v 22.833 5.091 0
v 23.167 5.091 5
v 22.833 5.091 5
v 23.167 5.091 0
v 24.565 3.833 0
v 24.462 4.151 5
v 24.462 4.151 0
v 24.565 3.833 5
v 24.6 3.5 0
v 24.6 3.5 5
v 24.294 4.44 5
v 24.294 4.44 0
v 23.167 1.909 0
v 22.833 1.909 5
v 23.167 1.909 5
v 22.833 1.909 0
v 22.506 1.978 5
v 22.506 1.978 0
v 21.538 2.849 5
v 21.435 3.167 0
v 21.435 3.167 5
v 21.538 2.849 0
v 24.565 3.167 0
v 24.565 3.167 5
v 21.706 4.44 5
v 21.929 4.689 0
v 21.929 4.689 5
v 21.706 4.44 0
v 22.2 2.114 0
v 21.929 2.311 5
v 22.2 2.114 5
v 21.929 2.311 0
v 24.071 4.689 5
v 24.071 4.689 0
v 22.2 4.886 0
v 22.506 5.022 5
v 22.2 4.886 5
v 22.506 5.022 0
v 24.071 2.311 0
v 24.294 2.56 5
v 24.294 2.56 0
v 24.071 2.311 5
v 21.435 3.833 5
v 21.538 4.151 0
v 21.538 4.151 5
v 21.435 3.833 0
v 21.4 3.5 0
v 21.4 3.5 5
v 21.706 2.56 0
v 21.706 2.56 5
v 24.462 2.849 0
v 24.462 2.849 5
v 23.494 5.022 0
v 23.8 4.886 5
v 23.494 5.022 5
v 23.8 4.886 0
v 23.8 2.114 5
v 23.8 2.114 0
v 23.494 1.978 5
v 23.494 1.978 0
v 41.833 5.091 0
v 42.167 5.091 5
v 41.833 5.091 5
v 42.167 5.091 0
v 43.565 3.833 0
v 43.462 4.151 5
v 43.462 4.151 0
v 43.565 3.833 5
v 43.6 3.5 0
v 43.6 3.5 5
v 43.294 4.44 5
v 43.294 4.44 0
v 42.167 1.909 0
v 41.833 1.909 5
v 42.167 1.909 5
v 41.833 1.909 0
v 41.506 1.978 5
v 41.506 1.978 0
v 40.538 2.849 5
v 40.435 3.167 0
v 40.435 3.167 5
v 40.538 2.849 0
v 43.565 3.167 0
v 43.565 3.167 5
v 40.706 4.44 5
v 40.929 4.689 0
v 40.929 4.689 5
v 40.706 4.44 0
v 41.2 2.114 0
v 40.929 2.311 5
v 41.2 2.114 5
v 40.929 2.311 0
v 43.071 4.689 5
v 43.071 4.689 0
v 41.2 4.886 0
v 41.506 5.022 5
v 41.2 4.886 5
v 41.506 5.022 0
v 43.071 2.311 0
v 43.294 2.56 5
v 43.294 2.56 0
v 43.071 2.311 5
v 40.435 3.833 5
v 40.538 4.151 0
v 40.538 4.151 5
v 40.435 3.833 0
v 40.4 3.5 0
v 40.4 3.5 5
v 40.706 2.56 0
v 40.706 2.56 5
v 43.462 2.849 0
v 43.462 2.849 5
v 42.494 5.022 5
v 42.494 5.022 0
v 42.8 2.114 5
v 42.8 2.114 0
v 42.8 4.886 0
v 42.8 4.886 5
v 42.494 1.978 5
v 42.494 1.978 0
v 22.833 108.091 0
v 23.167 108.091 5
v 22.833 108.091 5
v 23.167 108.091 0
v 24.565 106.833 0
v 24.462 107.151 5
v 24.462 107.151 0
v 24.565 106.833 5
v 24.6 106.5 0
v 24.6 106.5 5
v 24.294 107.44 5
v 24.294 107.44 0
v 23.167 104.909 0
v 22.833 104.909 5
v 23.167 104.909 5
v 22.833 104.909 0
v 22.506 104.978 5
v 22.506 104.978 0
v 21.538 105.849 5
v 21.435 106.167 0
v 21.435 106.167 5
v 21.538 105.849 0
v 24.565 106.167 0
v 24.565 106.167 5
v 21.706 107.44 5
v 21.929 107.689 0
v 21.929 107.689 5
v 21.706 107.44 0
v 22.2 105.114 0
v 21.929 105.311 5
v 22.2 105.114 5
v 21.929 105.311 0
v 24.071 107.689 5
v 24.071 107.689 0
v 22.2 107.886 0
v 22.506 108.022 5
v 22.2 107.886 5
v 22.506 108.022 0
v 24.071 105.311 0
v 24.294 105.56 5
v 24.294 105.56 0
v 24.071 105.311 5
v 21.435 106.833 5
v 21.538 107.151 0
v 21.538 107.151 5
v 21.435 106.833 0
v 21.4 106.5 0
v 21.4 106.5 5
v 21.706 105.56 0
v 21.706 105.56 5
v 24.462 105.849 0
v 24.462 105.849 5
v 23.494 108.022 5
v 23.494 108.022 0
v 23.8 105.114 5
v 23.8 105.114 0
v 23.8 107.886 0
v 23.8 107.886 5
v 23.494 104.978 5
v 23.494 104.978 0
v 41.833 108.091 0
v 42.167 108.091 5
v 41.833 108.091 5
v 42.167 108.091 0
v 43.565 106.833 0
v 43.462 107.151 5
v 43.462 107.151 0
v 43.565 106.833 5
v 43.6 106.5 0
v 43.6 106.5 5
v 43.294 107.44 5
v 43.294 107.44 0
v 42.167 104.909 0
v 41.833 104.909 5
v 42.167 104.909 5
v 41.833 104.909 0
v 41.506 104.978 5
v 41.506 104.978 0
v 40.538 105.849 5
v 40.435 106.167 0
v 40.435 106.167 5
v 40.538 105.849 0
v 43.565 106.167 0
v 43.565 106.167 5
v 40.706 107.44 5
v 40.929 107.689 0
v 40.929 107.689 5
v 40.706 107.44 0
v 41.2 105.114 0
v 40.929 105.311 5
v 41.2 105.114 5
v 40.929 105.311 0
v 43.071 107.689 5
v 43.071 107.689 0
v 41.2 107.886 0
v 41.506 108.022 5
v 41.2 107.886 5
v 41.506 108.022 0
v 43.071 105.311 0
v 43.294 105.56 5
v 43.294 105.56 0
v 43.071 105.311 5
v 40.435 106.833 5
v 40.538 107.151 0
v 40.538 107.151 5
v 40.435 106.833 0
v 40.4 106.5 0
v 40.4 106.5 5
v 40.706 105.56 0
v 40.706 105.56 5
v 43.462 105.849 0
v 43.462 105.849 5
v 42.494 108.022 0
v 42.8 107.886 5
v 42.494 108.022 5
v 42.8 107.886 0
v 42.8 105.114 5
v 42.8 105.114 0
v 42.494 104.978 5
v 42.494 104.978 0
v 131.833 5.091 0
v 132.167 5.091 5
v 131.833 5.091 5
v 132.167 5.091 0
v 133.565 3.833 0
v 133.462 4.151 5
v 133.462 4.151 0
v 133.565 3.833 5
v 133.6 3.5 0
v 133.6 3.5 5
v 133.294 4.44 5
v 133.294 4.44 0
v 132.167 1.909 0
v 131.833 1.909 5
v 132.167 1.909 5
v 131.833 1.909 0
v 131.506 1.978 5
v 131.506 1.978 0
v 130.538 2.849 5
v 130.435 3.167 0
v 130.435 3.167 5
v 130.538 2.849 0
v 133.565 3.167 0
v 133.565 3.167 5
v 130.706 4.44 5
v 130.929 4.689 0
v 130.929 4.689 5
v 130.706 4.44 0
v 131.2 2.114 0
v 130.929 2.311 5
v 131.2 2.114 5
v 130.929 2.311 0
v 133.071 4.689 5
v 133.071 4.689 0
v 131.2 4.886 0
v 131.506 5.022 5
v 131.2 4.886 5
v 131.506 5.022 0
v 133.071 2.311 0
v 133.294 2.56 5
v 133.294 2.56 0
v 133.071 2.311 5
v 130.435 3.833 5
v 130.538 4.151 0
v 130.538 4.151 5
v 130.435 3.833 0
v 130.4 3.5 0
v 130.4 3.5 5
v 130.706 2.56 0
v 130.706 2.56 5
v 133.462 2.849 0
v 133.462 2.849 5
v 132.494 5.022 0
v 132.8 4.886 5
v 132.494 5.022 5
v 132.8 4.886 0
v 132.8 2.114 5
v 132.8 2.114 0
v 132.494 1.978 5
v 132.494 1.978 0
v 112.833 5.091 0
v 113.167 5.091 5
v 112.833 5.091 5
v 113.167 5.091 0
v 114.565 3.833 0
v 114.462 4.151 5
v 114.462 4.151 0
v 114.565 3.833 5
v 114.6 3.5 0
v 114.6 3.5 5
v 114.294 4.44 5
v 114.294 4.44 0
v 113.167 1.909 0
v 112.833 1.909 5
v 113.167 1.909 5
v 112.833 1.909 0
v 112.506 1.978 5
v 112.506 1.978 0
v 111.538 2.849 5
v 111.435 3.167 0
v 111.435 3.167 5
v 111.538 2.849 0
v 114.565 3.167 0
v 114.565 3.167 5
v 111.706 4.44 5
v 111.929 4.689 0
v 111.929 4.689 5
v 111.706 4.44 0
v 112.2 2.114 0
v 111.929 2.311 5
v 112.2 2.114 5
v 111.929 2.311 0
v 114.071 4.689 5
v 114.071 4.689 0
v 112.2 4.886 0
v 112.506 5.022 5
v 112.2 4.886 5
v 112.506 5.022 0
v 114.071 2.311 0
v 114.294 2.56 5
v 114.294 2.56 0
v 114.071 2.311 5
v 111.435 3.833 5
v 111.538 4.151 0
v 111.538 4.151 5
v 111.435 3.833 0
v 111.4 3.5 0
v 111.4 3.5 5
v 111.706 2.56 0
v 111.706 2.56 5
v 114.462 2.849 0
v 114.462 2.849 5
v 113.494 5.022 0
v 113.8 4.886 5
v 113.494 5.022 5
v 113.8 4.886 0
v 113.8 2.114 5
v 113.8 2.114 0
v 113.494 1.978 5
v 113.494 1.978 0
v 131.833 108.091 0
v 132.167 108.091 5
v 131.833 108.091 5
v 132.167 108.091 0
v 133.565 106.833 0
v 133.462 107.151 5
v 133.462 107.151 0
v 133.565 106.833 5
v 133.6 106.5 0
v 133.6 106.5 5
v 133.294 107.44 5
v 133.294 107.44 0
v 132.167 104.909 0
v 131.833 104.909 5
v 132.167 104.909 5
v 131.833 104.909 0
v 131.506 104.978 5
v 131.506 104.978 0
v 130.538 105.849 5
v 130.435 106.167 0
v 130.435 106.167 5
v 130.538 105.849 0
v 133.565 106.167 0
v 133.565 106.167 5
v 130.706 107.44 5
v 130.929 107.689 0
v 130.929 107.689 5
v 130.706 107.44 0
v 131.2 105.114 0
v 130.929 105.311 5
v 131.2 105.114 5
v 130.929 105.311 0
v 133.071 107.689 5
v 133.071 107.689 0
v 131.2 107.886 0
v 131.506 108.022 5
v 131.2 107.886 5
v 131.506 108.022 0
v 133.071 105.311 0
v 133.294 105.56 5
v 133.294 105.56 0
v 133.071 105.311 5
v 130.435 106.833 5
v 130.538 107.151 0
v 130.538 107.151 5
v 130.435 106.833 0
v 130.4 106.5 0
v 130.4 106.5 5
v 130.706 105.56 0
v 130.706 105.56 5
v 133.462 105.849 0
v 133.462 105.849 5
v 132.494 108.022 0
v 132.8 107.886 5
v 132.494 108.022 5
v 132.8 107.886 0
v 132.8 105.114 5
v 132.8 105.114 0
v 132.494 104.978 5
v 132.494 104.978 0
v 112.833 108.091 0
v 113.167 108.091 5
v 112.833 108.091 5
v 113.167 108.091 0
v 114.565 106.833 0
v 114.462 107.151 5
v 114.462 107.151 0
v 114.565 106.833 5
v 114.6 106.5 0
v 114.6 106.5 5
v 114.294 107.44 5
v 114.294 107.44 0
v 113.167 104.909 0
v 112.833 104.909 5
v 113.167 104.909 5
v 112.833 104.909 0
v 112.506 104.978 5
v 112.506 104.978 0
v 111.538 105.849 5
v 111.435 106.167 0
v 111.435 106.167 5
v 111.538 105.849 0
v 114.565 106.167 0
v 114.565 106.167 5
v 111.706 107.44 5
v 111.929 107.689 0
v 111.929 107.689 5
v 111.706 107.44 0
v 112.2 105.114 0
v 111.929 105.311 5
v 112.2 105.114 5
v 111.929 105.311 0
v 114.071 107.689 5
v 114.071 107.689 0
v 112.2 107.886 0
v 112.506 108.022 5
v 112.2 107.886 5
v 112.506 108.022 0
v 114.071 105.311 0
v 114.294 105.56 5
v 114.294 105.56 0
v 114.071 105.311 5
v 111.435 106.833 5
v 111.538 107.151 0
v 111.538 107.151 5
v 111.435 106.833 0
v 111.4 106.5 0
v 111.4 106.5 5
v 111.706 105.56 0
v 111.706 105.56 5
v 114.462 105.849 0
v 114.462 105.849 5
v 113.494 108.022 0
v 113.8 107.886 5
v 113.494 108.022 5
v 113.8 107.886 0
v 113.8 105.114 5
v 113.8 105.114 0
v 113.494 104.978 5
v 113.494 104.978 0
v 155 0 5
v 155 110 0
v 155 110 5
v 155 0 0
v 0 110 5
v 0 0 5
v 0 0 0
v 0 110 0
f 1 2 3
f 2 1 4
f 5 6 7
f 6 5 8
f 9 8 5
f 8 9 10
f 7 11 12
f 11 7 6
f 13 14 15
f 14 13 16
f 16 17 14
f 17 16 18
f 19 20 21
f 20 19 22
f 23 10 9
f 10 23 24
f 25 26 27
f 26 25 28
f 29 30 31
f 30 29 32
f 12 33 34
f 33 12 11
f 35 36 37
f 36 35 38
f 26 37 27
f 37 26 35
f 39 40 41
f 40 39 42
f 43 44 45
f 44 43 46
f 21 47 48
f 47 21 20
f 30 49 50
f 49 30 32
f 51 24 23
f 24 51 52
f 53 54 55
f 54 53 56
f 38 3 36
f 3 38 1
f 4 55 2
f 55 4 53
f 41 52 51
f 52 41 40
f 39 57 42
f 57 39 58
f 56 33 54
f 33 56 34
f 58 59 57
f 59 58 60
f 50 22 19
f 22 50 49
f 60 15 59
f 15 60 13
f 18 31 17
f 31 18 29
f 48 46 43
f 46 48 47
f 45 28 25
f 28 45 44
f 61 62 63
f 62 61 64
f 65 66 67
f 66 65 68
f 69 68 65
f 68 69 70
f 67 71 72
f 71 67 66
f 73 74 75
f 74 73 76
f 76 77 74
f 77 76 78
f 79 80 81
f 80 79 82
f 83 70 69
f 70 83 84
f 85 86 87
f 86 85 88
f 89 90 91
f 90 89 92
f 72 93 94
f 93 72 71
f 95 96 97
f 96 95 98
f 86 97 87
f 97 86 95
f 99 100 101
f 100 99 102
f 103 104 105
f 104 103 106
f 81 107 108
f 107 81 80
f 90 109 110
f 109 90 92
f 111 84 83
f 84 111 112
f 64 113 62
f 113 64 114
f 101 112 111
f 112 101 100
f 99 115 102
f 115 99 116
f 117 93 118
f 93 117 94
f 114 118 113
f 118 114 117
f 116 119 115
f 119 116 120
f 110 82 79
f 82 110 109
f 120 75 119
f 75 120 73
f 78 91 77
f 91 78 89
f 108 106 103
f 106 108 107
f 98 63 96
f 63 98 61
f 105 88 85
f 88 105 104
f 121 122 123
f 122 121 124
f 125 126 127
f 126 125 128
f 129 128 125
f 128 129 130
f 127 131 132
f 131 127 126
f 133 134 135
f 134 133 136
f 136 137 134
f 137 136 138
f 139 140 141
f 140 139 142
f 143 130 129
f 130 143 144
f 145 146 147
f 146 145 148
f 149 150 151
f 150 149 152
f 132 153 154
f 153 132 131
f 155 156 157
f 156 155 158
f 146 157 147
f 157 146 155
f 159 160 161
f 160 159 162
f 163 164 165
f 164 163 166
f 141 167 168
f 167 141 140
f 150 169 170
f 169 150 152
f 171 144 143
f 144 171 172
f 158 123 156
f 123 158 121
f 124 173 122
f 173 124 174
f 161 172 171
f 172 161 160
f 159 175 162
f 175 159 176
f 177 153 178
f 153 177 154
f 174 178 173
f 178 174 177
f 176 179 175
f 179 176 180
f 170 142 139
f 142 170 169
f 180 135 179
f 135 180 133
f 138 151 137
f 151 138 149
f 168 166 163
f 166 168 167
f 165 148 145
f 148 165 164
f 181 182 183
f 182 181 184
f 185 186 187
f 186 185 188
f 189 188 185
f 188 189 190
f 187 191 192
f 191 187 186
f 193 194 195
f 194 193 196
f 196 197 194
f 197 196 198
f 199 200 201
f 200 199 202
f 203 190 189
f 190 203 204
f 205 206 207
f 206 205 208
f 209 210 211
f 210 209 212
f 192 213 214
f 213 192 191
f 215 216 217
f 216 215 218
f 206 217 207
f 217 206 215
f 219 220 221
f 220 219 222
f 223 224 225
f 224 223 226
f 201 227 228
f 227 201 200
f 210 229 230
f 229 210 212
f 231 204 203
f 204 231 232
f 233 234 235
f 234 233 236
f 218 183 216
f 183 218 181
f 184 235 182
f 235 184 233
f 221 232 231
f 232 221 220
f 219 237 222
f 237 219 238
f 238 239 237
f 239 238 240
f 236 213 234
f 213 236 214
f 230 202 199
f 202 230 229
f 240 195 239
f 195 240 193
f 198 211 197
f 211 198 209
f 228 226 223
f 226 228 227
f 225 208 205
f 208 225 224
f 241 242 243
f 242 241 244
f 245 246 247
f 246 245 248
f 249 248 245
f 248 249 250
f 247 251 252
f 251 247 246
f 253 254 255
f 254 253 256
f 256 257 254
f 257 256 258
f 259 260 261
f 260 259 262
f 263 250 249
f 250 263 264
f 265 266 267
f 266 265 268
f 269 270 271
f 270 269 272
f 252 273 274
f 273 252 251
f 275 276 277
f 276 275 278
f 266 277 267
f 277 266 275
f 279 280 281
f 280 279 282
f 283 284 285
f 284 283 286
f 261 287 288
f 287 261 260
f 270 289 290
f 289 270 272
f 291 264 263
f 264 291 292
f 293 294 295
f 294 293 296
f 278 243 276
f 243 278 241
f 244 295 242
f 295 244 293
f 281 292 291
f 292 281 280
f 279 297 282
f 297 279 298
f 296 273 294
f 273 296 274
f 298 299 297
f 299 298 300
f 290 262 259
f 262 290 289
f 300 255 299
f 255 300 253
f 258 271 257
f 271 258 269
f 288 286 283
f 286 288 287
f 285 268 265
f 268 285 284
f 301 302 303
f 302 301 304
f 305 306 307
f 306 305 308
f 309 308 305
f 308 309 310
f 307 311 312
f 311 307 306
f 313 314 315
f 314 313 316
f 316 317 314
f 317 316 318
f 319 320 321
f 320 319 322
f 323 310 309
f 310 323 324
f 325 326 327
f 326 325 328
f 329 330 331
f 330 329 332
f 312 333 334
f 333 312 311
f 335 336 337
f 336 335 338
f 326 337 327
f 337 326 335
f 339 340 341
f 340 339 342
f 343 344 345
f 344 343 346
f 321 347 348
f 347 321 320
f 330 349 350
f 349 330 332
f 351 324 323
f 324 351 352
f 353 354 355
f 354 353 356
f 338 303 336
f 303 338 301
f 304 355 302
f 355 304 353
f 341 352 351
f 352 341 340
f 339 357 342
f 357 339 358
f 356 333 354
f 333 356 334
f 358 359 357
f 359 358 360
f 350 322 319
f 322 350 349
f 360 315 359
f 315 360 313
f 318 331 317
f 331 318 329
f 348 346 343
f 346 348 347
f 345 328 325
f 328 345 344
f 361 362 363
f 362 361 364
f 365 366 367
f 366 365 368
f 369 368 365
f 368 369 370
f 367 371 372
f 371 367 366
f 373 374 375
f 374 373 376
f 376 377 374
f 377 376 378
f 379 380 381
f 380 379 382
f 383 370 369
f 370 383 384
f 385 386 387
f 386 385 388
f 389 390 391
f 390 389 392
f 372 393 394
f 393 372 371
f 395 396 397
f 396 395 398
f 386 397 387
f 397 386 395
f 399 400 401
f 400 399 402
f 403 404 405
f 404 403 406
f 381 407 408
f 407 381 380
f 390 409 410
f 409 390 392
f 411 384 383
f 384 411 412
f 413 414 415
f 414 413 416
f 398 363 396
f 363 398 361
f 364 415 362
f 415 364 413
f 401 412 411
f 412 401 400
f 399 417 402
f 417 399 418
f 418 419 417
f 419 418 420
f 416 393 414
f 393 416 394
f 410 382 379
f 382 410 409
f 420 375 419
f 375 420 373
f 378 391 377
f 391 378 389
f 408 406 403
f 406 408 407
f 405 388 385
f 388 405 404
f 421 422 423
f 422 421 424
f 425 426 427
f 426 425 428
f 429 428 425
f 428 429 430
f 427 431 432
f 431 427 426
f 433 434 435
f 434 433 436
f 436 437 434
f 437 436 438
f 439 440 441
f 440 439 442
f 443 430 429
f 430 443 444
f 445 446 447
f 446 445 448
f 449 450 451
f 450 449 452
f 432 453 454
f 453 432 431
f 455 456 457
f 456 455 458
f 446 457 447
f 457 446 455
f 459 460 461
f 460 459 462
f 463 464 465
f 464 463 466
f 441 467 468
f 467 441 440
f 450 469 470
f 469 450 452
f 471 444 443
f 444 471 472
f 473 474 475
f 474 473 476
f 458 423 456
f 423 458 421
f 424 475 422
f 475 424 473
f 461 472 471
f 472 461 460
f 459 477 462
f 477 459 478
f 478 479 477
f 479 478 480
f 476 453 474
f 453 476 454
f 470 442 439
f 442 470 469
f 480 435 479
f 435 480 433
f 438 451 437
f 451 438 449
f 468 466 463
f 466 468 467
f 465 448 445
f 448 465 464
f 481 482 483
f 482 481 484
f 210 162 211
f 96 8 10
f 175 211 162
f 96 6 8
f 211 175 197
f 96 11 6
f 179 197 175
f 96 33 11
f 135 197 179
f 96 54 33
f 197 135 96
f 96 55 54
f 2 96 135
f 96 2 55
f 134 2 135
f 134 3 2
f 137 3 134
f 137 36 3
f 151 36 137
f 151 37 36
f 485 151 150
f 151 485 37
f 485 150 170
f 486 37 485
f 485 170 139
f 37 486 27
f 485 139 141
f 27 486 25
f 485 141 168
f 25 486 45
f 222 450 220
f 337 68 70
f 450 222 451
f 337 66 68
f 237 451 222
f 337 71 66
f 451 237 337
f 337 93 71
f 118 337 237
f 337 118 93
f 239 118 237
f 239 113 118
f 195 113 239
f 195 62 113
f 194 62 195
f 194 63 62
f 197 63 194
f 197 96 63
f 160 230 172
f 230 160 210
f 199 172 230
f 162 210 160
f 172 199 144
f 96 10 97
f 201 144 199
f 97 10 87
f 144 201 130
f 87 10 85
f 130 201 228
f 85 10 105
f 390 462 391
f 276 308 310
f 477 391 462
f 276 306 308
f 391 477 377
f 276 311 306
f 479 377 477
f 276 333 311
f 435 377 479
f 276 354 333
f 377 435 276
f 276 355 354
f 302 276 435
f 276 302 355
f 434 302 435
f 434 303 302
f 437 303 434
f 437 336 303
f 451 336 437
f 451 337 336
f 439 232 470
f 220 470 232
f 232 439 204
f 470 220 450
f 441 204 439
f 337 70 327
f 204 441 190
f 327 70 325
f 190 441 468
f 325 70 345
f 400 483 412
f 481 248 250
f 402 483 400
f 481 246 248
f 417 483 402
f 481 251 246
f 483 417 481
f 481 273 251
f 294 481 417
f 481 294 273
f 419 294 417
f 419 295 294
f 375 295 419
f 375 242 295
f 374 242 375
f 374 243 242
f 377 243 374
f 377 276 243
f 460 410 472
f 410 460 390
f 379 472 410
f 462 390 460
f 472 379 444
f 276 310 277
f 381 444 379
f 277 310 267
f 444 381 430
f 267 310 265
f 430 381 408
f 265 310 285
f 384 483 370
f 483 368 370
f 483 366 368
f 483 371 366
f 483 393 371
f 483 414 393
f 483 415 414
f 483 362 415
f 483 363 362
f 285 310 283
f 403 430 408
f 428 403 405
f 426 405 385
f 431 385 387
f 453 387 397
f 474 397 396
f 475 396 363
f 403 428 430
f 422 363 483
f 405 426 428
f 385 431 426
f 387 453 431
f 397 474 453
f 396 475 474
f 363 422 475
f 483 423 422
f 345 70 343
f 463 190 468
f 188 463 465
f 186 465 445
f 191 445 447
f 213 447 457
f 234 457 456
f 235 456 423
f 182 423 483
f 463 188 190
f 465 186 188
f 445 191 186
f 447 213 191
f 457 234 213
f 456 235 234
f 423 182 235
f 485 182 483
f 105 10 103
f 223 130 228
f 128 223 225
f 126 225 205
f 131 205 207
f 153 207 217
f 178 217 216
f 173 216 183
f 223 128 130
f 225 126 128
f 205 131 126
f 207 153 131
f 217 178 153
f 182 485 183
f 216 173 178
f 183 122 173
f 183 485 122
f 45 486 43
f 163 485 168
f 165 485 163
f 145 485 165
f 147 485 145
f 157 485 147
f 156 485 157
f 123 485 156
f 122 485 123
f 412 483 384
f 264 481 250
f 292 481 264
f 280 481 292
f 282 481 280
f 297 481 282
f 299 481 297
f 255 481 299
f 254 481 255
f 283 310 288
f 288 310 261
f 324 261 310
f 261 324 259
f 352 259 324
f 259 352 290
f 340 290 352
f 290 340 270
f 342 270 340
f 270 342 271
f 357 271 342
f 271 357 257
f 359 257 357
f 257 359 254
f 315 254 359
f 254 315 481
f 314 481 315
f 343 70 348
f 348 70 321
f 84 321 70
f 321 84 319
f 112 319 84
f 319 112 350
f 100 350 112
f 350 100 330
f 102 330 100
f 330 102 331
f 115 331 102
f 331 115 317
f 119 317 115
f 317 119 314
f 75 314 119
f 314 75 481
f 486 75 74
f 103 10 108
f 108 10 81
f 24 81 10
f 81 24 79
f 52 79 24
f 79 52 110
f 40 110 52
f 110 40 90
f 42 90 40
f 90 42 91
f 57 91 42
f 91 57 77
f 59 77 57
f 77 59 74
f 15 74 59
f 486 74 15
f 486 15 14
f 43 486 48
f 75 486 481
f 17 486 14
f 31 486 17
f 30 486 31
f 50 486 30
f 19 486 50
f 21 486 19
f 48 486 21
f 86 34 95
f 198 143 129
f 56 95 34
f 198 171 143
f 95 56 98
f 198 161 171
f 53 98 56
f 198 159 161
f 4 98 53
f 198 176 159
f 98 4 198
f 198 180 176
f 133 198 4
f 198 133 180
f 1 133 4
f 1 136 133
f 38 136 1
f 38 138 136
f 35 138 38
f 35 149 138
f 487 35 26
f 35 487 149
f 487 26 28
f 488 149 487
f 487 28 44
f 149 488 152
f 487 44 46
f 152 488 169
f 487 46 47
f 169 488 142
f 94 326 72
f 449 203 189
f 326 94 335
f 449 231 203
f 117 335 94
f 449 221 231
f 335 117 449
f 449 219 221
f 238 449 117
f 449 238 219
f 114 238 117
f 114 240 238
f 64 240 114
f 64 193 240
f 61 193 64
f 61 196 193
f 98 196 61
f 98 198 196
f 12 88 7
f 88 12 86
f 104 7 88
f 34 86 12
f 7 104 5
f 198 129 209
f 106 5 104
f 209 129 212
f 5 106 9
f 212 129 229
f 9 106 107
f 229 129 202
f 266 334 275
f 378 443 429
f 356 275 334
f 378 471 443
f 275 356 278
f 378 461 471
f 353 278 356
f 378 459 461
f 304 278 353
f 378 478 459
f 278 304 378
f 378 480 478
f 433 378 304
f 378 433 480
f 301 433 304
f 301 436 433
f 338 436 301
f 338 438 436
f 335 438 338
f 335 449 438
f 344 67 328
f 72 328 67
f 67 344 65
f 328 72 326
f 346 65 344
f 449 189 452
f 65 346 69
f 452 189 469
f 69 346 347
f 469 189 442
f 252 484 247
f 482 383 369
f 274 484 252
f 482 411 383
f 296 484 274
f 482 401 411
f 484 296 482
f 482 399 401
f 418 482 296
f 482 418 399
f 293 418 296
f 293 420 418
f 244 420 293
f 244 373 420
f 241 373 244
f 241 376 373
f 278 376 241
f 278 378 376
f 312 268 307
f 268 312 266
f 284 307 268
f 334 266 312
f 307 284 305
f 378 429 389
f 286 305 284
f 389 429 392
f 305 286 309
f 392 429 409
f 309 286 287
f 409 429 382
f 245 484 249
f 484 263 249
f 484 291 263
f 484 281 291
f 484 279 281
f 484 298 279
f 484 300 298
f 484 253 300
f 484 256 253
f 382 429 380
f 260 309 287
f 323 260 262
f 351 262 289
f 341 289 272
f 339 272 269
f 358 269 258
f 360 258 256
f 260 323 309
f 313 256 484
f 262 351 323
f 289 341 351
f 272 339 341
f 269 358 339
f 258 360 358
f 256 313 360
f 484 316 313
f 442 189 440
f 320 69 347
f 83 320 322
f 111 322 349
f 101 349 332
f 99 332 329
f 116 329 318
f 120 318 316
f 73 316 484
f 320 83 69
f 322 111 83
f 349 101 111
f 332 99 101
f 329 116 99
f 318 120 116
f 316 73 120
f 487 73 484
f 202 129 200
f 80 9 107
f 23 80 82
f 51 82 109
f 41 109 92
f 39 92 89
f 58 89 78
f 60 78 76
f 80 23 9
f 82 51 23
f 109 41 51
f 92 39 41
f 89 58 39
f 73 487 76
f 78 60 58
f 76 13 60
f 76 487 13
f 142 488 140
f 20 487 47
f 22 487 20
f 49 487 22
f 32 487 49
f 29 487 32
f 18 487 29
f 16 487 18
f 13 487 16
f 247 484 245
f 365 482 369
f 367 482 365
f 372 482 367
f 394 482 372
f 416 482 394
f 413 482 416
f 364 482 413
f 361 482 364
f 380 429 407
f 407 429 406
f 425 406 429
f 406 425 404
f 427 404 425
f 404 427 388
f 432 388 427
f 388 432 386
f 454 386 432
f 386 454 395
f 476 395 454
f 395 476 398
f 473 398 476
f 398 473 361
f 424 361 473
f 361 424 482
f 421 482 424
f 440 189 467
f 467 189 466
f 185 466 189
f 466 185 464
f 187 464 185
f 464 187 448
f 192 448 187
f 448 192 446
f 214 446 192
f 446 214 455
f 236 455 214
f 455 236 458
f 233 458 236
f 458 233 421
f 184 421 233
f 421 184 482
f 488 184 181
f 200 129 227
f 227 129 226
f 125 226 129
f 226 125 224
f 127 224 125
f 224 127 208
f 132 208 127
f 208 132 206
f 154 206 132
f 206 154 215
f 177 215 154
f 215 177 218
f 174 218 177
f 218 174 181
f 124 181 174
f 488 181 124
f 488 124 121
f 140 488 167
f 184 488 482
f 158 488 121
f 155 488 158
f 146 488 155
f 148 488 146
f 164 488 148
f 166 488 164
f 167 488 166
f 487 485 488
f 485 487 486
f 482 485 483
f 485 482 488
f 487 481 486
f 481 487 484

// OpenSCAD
length=155;
width=110;
height=5;


difference()
{
    union()
    {
        translate([0,0,0]) cube([length, width, height]);
    }
    union()
    {
        translate([23,3.5,-1]) cylinder(d=3.2, h=height+2, $fn=30);        
        translate([23+19,3.5,-1]) cylinder(d=3.2, h=height+2, $fn=30);
        
        translate([23,width-3.5,-1]) cylinder(d=3.2, h=height+2, $fn=30);
        translate([23+19,width-3.5,-1]) cylinder(d=3.2, h=height+2, $fn=30);
        
        
        translate([length-23,3.5,-1]) cylinder(d=3.2, h=height+2, $fn=30);        
        translate([length-(23+19),3.5,-1]) cylinder(d=3.2, h=height+2, $fn=30);
        
        translate([length-23,width-3.5,-1]) cylinder(d=3.2, h=height+2, $fn=30);
        translate([length-(23+19),width-3.5,-1]) cylinder(d=3.2, h=height+2, $fn=30);
    }
}
